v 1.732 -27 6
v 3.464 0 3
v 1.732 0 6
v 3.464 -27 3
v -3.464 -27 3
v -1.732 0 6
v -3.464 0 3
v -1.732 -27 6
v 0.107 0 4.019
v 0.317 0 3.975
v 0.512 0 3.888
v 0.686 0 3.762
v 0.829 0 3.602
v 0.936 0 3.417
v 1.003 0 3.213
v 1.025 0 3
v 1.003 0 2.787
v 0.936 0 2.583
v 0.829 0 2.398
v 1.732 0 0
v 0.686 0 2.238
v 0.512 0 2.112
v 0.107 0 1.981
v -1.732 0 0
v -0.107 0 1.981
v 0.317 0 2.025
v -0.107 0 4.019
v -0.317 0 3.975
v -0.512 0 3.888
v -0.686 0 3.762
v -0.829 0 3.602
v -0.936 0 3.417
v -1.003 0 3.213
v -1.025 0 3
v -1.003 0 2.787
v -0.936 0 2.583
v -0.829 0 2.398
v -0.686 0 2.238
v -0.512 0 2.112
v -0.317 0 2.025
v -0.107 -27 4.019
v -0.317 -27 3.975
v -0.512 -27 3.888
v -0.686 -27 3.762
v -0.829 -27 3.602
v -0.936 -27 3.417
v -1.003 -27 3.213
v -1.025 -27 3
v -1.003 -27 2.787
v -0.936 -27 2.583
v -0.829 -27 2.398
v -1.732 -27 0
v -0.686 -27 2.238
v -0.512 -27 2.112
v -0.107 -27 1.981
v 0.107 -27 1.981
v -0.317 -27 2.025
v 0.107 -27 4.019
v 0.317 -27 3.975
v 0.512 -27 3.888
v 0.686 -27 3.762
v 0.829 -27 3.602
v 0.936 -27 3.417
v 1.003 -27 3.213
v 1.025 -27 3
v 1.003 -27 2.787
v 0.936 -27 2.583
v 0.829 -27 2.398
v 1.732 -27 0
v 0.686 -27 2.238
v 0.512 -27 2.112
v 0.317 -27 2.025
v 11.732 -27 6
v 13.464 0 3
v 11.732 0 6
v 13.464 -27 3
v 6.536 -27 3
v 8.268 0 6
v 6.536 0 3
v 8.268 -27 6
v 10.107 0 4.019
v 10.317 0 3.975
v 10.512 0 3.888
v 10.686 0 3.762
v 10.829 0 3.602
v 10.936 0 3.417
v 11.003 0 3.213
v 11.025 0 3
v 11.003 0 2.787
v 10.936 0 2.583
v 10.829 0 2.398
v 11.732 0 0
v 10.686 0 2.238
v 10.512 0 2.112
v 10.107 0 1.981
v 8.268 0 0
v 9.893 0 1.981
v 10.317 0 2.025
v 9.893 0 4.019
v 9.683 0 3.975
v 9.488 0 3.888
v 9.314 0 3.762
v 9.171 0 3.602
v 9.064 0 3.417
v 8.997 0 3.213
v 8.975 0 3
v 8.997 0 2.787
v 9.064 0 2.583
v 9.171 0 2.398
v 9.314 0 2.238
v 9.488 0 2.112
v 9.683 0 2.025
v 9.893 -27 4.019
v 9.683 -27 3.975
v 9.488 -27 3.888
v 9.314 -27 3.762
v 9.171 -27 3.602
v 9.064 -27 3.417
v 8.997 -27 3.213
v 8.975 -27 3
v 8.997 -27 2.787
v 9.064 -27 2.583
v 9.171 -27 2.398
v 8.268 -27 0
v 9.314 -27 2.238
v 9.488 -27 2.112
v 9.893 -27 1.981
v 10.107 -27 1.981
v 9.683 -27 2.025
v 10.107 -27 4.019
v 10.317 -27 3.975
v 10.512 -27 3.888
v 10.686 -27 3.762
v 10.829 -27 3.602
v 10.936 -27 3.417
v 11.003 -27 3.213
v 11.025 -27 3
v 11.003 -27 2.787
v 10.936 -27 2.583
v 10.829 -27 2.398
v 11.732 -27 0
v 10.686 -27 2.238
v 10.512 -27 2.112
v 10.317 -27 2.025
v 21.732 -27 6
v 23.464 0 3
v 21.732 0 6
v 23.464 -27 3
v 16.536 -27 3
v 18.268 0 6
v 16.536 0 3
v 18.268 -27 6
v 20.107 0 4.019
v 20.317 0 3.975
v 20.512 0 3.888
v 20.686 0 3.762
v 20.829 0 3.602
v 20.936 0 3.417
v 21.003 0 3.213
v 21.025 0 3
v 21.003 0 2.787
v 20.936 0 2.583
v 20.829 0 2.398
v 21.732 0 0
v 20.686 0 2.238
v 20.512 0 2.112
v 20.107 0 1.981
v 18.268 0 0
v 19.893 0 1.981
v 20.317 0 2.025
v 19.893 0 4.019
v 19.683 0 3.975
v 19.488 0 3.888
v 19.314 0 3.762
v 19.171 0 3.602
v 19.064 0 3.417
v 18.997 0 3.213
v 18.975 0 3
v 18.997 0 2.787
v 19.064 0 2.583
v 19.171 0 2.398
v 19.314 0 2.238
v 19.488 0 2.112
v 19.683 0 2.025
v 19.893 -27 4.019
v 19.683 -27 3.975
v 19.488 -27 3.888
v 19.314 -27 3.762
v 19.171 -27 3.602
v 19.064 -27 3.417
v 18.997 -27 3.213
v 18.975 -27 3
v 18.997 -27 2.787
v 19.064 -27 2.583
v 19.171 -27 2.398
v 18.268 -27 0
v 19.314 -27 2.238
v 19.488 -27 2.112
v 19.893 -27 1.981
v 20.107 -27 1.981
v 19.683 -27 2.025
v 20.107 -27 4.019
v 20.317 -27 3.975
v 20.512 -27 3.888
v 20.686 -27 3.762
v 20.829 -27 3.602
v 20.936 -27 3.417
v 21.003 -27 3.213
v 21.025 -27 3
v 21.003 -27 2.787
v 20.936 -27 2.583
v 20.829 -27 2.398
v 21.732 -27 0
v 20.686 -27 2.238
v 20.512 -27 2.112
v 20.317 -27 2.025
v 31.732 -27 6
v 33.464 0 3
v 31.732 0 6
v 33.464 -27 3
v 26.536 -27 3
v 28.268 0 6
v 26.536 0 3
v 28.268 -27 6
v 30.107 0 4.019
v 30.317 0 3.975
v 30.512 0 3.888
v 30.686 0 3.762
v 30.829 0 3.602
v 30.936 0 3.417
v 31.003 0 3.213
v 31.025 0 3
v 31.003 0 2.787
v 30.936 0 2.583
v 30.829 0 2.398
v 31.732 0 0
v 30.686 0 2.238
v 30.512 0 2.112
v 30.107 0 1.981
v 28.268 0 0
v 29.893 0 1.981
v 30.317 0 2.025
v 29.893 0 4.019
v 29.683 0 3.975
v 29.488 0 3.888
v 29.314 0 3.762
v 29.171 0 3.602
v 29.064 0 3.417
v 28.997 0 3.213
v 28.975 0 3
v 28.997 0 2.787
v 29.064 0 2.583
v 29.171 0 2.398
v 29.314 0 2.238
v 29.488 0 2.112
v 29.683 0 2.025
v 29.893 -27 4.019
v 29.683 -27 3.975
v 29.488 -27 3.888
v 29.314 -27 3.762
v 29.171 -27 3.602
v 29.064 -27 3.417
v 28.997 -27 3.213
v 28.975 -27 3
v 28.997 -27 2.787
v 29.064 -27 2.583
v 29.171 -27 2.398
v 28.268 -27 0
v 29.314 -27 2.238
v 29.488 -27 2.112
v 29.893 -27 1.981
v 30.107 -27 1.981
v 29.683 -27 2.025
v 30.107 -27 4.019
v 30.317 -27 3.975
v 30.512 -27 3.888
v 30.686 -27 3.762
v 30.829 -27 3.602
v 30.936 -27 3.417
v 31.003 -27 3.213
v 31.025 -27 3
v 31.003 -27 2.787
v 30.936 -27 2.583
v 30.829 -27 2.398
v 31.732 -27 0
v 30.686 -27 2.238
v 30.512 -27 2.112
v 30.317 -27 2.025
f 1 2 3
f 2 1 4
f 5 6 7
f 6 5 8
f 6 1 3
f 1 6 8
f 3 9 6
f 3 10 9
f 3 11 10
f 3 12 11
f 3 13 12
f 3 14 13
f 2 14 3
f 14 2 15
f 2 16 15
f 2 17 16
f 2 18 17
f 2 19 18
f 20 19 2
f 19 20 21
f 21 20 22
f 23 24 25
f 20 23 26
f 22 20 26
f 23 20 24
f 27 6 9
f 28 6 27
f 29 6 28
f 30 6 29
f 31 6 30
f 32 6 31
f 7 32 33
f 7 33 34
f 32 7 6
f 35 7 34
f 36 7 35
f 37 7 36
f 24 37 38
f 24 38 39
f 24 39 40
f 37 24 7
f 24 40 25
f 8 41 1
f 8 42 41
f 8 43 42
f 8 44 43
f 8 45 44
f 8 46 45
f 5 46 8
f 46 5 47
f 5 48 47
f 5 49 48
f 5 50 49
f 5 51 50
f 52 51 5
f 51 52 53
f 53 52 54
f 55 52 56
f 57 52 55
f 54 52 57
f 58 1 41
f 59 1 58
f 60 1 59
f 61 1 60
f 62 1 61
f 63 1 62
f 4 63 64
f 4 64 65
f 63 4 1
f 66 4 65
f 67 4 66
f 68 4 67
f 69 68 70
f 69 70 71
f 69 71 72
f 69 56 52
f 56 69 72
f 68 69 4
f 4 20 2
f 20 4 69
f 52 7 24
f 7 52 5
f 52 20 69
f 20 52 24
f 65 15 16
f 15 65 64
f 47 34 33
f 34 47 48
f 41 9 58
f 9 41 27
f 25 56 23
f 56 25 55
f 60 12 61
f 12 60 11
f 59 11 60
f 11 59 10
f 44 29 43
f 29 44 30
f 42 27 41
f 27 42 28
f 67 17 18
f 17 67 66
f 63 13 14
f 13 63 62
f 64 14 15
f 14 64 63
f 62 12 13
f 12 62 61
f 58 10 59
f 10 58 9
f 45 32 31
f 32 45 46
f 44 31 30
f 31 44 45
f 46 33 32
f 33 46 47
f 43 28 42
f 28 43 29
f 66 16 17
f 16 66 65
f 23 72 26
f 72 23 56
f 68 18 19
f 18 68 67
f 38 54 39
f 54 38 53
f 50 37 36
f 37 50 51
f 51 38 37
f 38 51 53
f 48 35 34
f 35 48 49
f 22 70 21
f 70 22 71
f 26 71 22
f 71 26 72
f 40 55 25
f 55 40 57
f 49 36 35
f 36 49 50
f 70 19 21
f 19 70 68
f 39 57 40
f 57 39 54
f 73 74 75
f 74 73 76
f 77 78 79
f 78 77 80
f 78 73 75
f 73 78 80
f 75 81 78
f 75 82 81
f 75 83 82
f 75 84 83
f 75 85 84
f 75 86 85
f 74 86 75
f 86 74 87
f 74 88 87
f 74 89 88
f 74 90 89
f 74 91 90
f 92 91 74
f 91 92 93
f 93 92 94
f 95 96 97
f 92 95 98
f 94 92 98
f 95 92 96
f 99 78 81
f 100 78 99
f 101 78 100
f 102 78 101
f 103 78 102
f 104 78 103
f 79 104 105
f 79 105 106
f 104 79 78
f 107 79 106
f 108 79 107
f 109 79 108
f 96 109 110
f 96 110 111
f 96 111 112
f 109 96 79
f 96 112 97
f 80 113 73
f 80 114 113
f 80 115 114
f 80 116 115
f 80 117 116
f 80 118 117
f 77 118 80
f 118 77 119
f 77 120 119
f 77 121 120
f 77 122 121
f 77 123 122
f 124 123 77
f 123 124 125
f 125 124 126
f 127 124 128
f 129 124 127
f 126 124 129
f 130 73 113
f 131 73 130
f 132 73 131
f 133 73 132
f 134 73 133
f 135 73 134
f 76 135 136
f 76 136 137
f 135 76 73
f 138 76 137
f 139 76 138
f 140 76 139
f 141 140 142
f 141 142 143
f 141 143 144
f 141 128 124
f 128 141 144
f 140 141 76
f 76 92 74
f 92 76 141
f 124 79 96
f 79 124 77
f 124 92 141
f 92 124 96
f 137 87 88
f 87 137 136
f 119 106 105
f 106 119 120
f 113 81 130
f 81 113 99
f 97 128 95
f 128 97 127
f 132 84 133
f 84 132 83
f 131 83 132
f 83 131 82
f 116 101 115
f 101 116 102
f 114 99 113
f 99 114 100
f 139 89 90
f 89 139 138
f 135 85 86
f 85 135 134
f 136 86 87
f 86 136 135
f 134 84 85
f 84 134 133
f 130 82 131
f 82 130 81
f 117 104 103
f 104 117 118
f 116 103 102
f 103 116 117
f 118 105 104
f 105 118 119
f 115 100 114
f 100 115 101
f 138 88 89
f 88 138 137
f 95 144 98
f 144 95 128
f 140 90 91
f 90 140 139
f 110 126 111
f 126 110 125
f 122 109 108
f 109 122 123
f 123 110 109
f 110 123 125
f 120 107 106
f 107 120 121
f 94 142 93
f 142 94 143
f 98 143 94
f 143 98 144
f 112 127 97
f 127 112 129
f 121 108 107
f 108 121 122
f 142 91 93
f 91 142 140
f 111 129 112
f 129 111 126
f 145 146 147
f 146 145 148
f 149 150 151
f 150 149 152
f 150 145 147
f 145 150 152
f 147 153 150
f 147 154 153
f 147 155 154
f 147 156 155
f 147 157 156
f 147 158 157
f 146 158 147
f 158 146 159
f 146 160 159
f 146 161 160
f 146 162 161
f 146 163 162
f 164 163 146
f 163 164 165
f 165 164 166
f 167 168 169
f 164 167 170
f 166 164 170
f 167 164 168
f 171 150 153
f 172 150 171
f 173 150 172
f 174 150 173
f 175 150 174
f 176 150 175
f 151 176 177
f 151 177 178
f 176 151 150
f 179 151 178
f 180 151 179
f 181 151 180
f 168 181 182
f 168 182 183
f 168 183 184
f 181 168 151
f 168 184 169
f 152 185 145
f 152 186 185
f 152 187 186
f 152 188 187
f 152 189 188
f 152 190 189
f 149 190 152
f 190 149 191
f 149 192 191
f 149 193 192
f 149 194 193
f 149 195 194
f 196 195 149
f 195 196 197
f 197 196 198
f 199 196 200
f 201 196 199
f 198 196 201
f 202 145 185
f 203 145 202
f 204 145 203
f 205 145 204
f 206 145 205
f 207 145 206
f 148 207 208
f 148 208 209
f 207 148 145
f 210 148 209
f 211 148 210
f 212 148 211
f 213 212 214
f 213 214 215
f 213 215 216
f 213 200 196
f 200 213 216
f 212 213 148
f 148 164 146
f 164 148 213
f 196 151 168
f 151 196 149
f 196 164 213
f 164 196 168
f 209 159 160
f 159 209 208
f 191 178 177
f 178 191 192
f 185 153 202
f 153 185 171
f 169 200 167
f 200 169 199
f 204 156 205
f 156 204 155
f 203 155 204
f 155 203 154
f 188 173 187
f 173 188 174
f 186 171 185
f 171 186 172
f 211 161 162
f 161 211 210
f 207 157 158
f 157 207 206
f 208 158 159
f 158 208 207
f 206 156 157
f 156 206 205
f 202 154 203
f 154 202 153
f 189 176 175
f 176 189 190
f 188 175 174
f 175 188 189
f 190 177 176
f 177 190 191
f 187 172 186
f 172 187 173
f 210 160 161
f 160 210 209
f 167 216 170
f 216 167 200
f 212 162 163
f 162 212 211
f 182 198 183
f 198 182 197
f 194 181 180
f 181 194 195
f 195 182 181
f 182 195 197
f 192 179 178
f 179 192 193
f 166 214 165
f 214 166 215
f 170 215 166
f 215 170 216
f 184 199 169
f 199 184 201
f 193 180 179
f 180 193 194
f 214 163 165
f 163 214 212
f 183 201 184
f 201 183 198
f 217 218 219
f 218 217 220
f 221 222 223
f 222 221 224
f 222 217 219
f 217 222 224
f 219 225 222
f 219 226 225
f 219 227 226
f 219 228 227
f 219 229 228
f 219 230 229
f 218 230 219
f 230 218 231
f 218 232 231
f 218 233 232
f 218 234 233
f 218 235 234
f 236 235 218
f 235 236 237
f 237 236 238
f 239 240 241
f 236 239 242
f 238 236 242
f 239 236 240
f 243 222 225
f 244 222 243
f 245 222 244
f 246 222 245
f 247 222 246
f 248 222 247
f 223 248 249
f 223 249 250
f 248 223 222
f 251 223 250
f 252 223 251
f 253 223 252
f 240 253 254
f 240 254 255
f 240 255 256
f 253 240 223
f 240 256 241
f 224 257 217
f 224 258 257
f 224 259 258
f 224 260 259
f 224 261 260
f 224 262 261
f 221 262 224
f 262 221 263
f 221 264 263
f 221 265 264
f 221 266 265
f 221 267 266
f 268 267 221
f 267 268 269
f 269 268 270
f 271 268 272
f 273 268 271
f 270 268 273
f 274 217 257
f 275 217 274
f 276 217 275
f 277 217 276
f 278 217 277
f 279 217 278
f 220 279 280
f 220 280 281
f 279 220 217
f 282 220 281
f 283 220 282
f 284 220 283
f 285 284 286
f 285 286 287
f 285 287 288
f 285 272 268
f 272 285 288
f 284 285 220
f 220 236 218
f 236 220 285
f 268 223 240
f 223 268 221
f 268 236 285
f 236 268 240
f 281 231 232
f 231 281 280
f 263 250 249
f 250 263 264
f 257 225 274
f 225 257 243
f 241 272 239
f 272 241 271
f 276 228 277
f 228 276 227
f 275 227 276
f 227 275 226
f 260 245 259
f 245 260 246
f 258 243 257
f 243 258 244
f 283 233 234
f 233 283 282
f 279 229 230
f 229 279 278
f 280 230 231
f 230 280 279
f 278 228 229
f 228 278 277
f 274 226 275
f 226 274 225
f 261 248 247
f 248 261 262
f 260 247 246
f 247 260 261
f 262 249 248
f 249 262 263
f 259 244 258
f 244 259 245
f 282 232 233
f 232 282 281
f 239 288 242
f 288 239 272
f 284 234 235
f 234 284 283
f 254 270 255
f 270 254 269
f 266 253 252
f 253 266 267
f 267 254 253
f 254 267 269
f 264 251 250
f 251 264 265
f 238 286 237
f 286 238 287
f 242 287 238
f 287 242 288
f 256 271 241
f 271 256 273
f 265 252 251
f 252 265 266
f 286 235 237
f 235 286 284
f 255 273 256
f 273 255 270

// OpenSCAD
// file: library/nutsnbolts/data-access.scad
// Norm Nuts and Bolts - a OpenSCAD library
// Copyright (C) 2012  Johannes Kneer

// This program is free software: you can redistribute it and/or modify
// it under the terms of the GNU General Public License as published by
// the Free Software Foundation, either version 3 of the License, or
// (at your option) any later version.

// This program is distributed in the hope that it will be useful,
// but WITHOUT ANY WARRANTY; without even the implied warranty of
// MERCHANTABILITY or FITNESS FOR A PARTICULAR PURPOSE.  See the
// GNU General Public License for more details.

// You should have received a copy of the GNU General Public License
// along with this program.  If not, see <http://www.gnu.org/licenses/>.


// DATABASE ACCESS FUNCTIONS AND CONSTANTS



// == CONSTANTS ==

// screw table access keys
_NB_S_DESC            = 0;
_NB_S_FAMKEY			    = 1;
_NB_S_LENGTH          = 2;
_NB_S_NOTHREAD_LENGTH = 3;

_NB_F_DESC			      = 0;
_NB_F_OUTER_DIA       = 1;
_NB_F_INNER_DIA       = 2;
_NB_F_LEAD            = 3;
_NB_F_KEY             = 4;
_NB_F_KEY_DEPTH       = 5;
_NB_F_HEAD_HEIGHT     = 6;
_NB_F_HEAD_DIA        = 7;
_NB_F_NUT_KEY         = 8;
_NB_F_NUT_HEIGHT      = 9;
_NB_F_PITCH_FINE      = 10;
_NB_F_PITCH_MEDIUM    = 11;
_NB_F_PITCH_COARSE    = 12;


// == FUNCTIONS ==

// _get_screw("descriptor")   with descriptor = M8x25
//   find the line for a general object in the data matrix

function _get_screw(n) = data_screw[search([n], data_screw)[0]];
function _get_screw_fam(n) = data_screw_fam[search([_get_screw(n)[_NB_S_FAMKEY]], data_screw_fam)[0]];

function _get_fam(n) = data_screw_fam[search([n], data_screw_fam)[0]];


// _get_XXXXX("descriptor") functions
// find a single property in the database

function _get_desc(n)        = _get_screw(n)[_NB_S_DESC];
function _get_famkey(n)         = _get_screw(n)[_NB_S_FAMKEY];
function _get_length(n)      = _get_screw(n)[_NB_S_LENGTH];
function _get_nt_length(n)   = _get_screw(n)[_NB_S_NOTHREAD_LENGTH];

function _get_outer_dia(n)   = _get_screw_fam(n)[_NB_F_OUTER_DIA];
function _get_inner_dia(n)   = _get_screw_fam(n)[_NB_F_INNER_DIA];
function _get_lead(n)        = _get_screw_fam(n)[_NB_F_LEAD];
function _get_head_height(n) = _get_screw_fam(n)[_NB_F_HEAD_HEIGHT];
function _get_head_dia(n)    = _get_screw_fam(n)[_NB_F_HEAD_DIA];
function _get_nut_key(n)     = _get_screw_fam(n)[_NB_F_NUT_KEY];
function _get_nut_height(n)  = _get_screw_fam(n)[_NB_F_NUT_HEIGHT];
function _get_fine_pitch(n)  = _get_screw_fam(n)[_NB_F_PITCH_FINE];
function _get_medium_pitch(n)  = _get_screw_fam(n)[_NB_F_PITCH_MEDIUM];
function _get_coarse_pitch(n)  = _get_screw_fam(n)[_NB_F_PITCH_COARSE];
// file: library/round-corners-cube.scad
/*
http://codeviewer.org/view/code:1b36 
Copyright (C) 2011 Sergio Vilches
This program is free software: you can redistribute it and/or modify it under the terms of the GNU General Public License as published by the Free Software Foundation, either version 3 of the License, or (at your option) any later version.
This program is distributed in the hope that it will be useful, but WITHOUT ANY WARRANTY; without even the implied warranty of MERCHANTABILITY or FITNESS FOR A PARTICULAR PURPOSE. See the GNU General Public License for more details. You should have received a copy of the GNU General Public License along with this program. If not, see <http://www.gnu.org/licenses/>.
Contact: s.vilches.e@gmail.com


    ----------------------------------------------------------- 
                 Round Corners Cube (Extruded)                
      round_corners_cube(x,y,z,r) Where:                        
         - x = Xdir width                                     
         - y = Ydir width                                     
         - z = Height of the cube                             
         - r = Rounding radious                               
                                                              
      Example: roundCornerCube(10,10,2,1);                    
     *Some times it's needed to use F6 to see good results!   
 	 ----------------------------------------------------------- 
*/
// Test it!
// round_corners_cube(10,5,2,1);


module createMeniscus(h,radius) // This module creates the shape that needs to be substracted from a cube to make its corners rounded.
difference(){        //This shape is basicly the difference between a quarter of cylinder and a cube
   translate([radius/2+0.1,radius/2+0.1,0]){
      cube([radius+0.2,radius+0.1,h+0.2],center=true);         // All that 0.x numbers are to avoid "ghost boundaries" when substracting
   }

   cylinder(h=h+0.2,r=radius,$fn = 25,center=true);
}


module round_corners_cube(x,y,z,r)  // Now we just substract the shape we have created in the four corners
difference(){
   cube([x,y,z], center=true);

translate([x/2-r,y/2-r]){  // We move to the first corner (x,y)
      rotate(0){  
         createMeniscus(z,r); // And substract the meniscus
      }
   }
   translate([-x/2+r,y/2-r]){ // To the second corner (-x,y)
      rotate(90){
         createMeniscus(z,r); // But this time we have to rotate the meniscus 90 deg
      }
   }
      translate([-x/2+r,-y/2+r]){ // ... 
      rotate(180){
         createMeniscus(z,r);
      }
   }
      translate([x/2-r,-y/2+r]){
      rotate(270){
         createMeniscus(z,r);
      }
   }
}
// file: library/params.scad
//function isfull_view(n) = n==full_view;

bottom_plate_color = [0.3, 0.7, 0.7];
top_plate_color = [0.8, 0.8, 0.3];
damper_color = [0.8, 0.2, 0.3];
gps_bracket_color = [0.3, 0.8, 0.3, 1];
option_bracket_color = [0.8, 0.8, 0.3];
pillar_color = [0.8, 0.5, 0.3];
cut_color = [0.9, 0, 0];

cc3d_hole_width = 30.5;
cut_view=false;
debug=false;
//viewModule = isfull_view(viewType);
cut_view_debug=0;

M25_outer_dia=2.8; 
M25_inner_dia=2.05; 
M25_head_dia=5;
M3_outer_dia=3.5; 
M3_inner_dia=2.8;
M3_head_dia=5.4+0.5;
// SMA Thread
M6_outer_dia=6.8;



plate_tin = 2.2;

pillar_heigth = 27;

pillar_hole_width = 64;
pillar_hole_length = 64;

option_hole_length = cc3d_hole_width;
option_hole_width = cc3d_hole_width;



DAMPER_EARS_DRAW_TOP=[0,1];
DAMPER_EARS_DRAW_BOTTOM=[0,0];
DAMPER_EARS_SHOW_DAMPER=[1,1];
DAMPER_EARS_CUT_BOTTOM=[2,0];
DAMPER_EARS_CUT_TOP=[2,1];
// main file
// tarot 680 pro - a OpenSCAD 
// Copyright (C) 2015  Gerard Valade

// This program is free software: you can redistribute it and/or modify
// it under the terms of the GNU General Public License as published by
// the Free Software Foundation, either version 3 of the License, or
// (at your option) any later version.

// This program is distributed in the hope that it will be useful,
// but WITHOUT ANY WARRANTY; without even the implied warranty of
// MERCHANTABILITY or FITNESS FOR A PARTICULAR PURPOSE.  See the
// GNU General Public License for more details.

// You should have received a copy of the GNU General Public License
// along with this program.  If not, see <http://www.gnu.org/licenses/>.


include <library/params.scad>
use <library/modules-utils.scad>


module pillar(l=pillar_heigth, $fn=30)
{
	color(pillar_color) difference() {
		translate([0, 0, l/2])  hexaprismx(ri=6/2, h=l);
		translate([0, 0, -1])  cylinder(d=M25_inner_dia, h=l+2);
	}
}

module pillars($fn=30)
{
	for (x = [-1, 1]) {
		for (y = [-1,1]) { 
			translate([x*pillar_hole_length/2, y*(pillar_hole_width/2), 6])
					 pillar();
		}
	}
}

for (x = [0 : 3]) translate([x*10, 0, 3]) rotate([90,0,0]) pillar();
